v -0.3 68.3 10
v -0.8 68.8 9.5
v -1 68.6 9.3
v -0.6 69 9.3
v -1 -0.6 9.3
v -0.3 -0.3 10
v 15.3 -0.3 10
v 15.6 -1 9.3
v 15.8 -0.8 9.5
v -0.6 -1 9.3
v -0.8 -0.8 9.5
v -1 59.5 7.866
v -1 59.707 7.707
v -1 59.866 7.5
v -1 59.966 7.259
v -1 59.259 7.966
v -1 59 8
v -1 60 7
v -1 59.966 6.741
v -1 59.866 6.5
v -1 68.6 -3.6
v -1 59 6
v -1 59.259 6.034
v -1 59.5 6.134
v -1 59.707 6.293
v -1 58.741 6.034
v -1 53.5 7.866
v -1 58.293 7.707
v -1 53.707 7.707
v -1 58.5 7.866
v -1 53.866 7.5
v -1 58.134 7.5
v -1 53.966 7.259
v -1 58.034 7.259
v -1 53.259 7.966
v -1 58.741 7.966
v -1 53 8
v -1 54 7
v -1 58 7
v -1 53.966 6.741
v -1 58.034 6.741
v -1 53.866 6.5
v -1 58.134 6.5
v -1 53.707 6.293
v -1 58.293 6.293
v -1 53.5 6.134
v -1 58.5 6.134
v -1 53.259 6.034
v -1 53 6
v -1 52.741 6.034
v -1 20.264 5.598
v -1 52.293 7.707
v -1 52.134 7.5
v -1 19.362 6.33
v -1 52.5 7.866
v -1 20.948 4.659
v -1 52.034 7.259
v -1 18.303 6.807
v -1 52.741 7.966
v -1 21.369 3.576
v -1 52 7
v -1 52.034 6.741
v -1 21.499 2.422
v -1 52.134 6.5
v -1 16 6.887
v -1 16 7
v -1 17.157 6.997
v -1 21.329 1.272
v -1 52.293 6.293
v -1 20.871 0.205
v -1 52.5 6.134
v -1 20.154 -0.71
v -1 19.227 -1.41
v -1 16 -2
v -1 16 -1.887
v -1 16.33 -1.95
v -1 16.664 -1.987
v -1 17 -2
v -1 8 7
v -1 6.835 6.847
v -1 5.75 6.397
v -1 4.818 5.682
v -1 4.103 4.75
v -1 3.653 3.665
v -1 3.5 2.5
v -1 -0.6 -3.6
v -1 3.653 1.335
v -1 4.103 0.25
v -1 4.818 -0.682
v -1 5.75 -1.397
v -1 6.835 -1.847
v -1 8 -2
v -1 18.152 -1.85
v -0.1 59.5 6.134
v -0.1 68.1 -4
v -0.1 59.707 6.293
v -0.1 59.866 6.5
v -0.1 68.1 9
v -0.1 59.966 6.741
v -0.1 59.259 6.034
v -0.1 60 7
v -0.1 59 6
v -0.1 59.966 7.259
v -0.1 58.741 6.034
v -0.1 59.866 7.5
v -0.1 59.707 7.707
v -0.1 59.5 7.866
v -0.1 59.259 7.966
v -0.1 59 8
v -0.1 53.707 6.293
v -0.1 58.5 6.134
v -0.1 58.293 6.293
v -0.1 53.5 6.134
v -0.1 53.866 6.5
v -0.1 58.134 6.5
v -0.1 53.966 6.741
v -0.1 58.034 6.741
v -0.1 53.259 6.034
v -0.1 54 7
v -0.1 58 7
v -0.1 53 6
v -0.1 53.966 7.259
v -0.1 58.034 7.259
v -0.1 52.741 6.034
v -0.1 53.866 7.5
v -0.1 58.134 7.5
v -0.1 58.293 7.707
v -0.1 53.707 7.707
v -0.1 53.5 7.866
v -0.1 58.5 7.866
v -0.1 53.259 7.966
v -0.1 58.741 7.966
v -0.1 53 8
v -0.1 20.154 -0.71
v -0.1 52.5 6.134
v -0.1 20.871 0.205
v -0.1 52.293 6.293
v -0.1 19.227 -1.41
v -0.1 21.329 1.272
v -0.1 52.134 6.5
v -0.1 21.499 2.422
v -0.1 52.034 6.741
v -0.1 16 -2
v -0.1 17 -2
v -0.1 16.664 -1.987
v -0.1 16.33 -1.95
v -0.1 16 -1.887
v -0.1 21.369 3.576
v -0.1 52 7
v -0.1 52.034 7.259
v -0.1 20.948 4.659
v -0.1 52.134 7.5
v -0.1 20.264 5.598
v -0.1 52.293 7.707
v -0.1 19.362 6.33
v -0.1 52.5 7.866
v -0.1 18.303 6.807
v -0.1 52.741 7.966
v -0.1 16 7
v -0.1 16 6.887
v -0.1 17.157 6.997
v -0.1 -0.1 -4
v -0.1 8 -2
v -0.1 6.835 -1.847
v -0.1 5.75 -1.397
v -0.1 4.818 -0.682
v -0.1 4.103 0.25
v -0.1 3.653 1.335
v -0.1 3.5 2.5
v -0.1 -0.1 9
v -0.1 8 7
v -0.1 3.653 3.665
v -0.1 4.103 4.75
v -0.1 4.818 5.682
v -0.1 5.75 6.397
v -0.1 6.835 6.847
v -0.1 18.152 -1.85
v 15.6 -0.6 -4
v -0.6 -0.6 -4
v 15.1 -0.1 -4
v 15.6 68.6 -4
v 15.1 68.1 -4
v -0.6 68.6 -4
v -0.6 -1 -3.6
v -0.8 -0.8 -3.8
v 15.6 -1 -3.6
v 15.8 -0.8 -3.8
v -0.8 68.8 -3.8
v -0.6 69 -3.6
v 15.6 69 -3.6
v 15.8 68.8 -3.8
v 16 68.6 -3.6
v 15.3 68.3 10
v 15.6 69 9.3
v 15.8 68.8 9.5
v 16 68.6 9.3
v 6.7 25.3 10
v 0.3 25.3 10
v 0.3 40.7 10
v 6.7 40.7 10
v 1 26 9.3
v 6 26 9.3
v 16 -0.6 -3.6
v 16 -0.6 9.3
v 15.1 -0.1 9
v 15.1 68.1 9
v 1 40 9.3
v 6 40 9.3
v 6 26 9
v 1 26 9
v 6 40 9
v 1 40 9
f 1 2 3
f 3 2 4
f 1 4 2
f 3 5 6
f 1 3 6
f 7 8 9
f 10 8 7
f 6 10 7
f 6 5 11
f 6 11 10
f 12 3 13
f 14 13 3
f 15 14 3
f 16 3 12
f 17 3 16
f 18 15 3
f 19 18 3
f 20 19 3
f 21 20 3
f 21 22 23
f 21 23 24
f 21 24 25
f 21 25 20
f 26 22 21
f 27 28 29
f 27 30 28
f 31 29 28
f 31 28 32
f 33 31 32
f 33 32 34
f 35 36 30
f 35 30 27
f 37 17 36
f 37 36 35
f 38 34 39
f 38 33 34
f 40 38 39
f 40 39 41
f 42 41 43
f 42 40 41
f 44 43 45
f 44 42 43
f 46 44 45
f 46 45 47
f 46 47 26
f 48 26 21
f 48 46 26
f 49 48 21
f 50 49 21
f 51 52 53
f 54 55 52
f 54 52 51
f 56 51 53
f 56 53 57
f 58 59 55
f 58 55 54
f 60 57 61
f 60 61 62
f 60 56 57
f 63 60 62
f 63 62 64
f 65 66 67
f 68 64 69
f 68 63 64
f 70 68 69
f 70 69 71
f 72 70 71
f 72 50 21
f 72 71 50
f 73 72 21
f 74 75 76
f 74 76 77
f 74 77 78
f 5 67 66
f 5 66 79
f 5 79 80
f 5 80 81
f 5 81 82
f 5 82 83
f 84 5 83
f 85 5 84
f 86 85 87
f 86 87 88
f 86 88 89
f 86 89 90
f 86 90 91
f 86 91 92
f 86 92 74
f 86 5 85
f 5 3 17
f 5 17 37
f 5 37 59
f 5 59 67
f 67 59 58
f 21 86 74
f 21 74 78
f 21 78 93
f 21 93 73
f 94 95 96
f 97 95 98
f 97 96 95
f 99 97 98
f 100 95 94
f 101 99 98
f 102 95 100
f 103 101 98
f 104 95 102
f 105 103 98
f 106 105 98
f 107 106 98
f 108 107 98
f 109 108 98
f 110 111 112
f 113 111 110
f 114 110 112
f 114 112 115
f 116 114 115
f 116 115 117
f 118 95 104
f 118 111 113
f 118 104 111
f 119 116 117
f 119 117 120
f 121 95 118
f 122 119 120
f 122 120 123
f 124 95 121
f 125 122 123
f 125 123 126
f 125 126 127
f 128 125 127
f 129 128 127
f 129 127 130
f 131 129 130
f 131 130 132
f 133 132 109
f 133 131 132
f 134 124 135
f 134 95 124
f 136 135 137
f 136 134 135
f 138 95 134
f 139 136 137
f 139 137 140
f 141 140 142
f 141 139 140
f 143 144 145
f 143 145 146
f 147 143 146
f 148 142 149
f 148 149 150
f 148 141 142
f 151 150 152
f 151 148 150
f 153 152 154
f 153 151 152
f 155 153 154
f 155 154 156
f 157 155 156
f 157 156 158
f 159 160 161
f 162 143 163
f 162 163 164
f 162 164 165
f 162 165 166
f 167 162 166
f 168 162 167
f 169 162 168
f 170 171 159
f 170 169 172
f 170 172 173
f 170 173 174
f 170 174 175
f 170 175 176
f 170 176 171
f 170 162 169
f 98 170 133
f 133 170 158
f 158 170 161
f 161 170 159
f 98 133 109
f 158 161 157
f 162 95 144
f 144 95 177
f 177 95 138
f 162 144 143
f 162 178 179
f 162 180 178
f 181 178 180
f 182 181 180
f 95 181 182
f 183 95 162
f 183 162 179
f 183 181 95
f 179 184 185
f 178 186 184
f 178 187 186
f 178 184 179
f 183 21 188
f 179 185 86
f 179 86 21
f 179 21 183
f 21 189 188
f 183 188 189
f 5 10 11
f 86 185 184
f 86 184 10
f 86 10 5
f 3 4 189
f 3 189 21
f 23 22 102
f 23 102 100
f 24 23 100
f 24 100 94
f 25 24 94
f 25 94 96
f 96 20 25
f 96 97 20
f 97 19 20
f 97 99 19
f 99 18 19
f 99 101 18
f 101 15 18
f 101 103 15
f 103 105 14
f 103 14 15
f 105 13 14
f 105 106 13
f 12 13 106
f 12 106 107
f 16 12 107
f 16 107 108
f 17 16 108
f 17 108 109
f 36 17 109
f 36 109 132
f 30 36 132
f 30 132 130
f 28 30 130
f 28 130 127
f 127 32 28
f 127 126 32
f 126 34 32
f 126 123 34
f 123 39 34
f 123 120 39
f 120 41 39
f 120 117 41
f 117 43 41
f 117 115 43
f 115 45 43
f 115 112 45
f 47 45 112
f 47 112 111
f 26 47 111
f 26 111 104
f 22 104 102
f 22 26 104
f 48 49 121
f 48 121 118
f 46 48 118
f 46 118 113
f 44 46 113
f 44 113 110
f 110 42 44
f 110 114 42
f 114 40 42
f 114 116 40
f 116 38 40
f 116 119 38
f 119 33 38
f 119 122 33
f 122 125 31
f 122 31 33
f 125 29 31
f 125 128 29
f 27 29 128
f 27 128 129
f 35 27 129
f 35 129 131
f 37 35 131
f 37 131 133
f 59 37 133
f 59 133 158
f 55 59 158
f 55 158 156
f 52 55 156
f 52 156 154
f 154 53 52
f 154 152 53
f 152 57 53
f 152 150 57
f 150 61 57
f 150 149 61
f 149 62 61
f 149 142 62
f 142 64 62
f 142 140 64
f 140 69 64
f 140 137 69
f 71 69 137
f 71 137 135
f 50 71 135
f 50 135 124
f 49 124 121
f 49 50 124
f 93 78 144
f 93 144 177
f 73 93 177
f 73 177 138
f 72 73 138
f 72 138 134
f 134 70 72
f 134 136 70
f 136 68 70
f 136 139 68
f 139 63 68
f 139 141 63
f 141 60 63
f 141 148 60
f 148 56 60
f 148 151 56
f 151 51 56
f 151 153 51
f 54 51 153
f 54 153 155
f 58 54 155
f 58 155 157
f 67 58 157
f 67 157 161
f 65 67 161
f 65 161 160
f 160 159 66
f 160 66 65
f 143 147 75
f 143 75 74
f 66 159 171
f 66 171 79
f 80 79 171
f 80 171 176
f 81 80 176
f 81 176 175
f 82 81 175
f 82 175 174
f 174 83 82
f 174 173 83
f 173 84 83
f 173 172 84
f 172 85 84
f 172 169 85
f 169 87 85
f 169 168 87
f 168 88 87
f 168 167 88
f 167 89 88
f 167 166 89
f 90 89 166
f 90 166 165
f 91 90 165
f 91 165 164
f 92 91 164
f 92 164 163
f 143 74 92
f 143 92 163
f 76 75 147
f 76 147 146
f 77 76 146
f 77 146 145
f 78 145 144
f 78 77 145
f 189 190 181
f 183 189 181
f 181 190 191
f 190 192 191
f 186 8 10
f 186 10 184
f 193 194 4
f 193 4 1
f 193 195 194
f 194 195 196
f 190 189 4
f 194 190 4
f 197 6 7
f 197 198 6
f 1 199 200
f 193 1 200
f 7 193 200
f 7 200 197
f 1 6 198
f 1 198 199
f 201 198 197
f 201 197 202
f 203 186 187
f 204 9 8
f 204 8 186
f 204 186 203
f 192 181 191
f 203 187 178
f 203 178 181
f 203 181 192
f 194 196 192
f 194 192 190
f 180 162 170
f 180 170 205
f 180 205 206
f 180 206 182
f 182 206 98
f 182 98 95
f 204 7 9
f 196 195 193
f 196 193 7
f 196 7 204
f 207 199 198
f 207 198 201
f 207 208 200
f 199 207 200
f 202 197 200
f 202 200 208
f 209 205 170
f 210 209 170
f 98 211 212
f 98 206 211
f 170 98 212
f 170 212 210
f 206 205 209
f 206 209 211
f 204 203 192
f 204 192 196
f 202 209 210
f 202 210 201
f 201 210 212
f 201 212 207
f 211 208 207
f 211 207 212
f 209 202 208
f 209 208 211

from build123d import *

# Parameters (mm, degrees)
BOX004_W          = 8
BOX004_H          = 8
BOX004_DEPTH      = 9
CYLINDER_R        = 1
CYLINDER_DEPTH    = 10
CYLINDER001_R     = 1
CYLINDER001_DEPTH = 10
CYLINDER002_R     = 4.5
CYLINDER002_DEPTH = 12
CYLINDER003_R     = 4.5
CYLINDER003_DEPTH = 12
BOX002_W          = 5
BOX002_H          = 14
BOX002_DEPTH      = 11
BOX_W             = 15.2
BOX_H             = 68.2
BOX_DEPTH         = 18
BOX001_W          = 17
BOX001_H          = 70
BOX001_DEPTH      = 14
CHAMFER_SIZE      = 0.7
CHAMFER001_SIZE   = 0.7
CHAMFER002_SIZE   = 0.4
CHAMFER003_SIZE   = 0.4
CHAMFER004_SIZE   = 0.4


with BuildPart() as cubo003:
    # Box004 → Box004 (new body)
    with BuildSketch(Plane(origin=(-5, 8, -2), x_dir=(1, 0, 0), z_dir=(0, 0, 1))):
        with Locations((4, 4)):
            Rectangle(BOX004_W, BOX004_H)
    extrude(amount=BOX004_DEPTH)


with BuildPart() as led1:
    # Cylinder → Cylinder (new body)
    with BuildSketch(Plane(origin=(-5, 59, 7), x_dir=(0, 0, -1), z_dir=(1, 0, 0))):
        Circle(CYLINDER_R)
    extrude(amount=CYLINDER_DEPTH)


with BuildPart() as cilindro:
    # Cylinder001 → Cylinder001 (new body)
    with BuildSketch(Plane(origin=(-5, 53, 7), x_dir=(0, 0, -1), z_dir=(1, 0, 0))):
        Circle(CYLINDER001_R)
    extrude(amount=CYLINDER001_DEPTH)


with BuildPart() as cilindro001:
    # Cylinder002 → Cylinder002 (new body)
    with BuildSketch(Plane(origin=(-8, 8, 2.5), x_dir=(0, 0, -1), z_dir=(1, 0, 0))):
        Circle(CYLINDER002_R)
    extrude(amount=CYLINDER002_DEPTH)


with BuildPart() as fusion:
    # Cylinder003 → Cylinder003 (new body)
    with BuildSketch(Plane(origin=(-8, 17, 2.5), x_dir=(0, 0, -1), z_dir=(1, 0, 0))):
        Circle(CYLINDER003_R)
    extrude(amount=CYLINDER003_DEPTH)

    # Fusion: union Cilindro001
    add(cilindro001.part)


with BuildPart() as cubo001:
    # Box002 → Box002 (new body)
    with BuildSketch(Plane(origin=(1, 26, 2), x_dir=(1, 0, 0), z_dir=(0, 0, 1))):
        with Locations((2.5, 7)):
            Rectangle(BOX002_W, BOX002_H)
    extrude(amount=BOX002_DEPTH)


with BuildPart() as foroslot:
    # Box → Box (new body)
    with BuildSketch(Plane(origin=(-0.1, -0.1, -9), x_dir=(1, 0, 0), z_dir=(0, 0, 1))):
        with Locations((7.6, 34.1)):
            Rectangle(BOX_W, BOX_H)
    extrude(amount=BOX_DEPTH)


with BuildPart() as cut006:
    # Box001 → Box001 (new body)
    with BuildSketch(Plane(origin=(-1, -1, -4), x_dir=(1, 0, 0), z_dir=(0, 0, 1))):
        with Locations((8.5, 35)):
            Rectangle(BOX001_W, BOX001_H)
    extrude(amount=BOX001_DEPTH)

    # Cut: cut foroSlot
    add(foroslot.part, mode=Mode.SUBTRACT)

    # Cut001: cut Cubo001
    add(cubo001.part, mode=Mode.SUBTRACT)

    # Chamfer
    chamfer_edges = [cut006.edges().sort_by_distance(p)[0] for p in [
        (3.5, 26, 10),
        (6, 33, 10),
        (3.5, 40, 10),
        (1, 33, 10),
    ]]
    chamfer(chamfer_edges, length=CHAMFER_SIZE)

    # Chamfer001
    chamfer001_edges = [cut006.edges().sort_by_distance(p)[0] for p in [
        (-1, 34, 10),
        (7.5, -1, 10),
        (16, 34, 10),
        (7.5, 69, 10),
    ]]
    chamfer(chamfer001_edges, length=CHAMFER001_SIZE)

    # Cut002: cut Fusion
    add(fusion.part, mode=Mode.SUBTRACT)

    # Cut003: cut Cilindro
    add(cilindro.part, mode=Mode.SUBTRACT)

    # Cut004: cut Led1
    add(led1.part, mode=Mode.SUBTRACT)

    # Chamfer002
    chamfer002_edges = [cut006.edges().sort_by_distance(p)[0] for p in [
        (7.5, -1, -4),
        (7.5, 69, -4),
    ]]
    chamfer(chamfer002_edges, length=CHAMFER002_SIZE)

    # Chamfer003
    chamfer003_edges = [cut006.edges().sort_by_distance(p)[0] for p in [
        (-1, 34, -4),
        (16, 34, -4),
    ]]
    chamfer(chamfer003_edges, length=CHAMFER003_SIZE)

    # Chamfer004
    chamfer004_edges = [cut006.edges().sort_by_distance(p)[0] for p in [
        (-1, 69, 2.85),
        (-1, -1, 2.85),
        (16, -1, 2.85),
        (16, 69, 2.85),
    ]]
    chamfer(chamfer004_edges, length=CHAMFER004_SIZE)

    # Cut006: cut Cubo003
    add(cubo003.part, mode=Mode.SUBTRACT)


solid = cut006.part
